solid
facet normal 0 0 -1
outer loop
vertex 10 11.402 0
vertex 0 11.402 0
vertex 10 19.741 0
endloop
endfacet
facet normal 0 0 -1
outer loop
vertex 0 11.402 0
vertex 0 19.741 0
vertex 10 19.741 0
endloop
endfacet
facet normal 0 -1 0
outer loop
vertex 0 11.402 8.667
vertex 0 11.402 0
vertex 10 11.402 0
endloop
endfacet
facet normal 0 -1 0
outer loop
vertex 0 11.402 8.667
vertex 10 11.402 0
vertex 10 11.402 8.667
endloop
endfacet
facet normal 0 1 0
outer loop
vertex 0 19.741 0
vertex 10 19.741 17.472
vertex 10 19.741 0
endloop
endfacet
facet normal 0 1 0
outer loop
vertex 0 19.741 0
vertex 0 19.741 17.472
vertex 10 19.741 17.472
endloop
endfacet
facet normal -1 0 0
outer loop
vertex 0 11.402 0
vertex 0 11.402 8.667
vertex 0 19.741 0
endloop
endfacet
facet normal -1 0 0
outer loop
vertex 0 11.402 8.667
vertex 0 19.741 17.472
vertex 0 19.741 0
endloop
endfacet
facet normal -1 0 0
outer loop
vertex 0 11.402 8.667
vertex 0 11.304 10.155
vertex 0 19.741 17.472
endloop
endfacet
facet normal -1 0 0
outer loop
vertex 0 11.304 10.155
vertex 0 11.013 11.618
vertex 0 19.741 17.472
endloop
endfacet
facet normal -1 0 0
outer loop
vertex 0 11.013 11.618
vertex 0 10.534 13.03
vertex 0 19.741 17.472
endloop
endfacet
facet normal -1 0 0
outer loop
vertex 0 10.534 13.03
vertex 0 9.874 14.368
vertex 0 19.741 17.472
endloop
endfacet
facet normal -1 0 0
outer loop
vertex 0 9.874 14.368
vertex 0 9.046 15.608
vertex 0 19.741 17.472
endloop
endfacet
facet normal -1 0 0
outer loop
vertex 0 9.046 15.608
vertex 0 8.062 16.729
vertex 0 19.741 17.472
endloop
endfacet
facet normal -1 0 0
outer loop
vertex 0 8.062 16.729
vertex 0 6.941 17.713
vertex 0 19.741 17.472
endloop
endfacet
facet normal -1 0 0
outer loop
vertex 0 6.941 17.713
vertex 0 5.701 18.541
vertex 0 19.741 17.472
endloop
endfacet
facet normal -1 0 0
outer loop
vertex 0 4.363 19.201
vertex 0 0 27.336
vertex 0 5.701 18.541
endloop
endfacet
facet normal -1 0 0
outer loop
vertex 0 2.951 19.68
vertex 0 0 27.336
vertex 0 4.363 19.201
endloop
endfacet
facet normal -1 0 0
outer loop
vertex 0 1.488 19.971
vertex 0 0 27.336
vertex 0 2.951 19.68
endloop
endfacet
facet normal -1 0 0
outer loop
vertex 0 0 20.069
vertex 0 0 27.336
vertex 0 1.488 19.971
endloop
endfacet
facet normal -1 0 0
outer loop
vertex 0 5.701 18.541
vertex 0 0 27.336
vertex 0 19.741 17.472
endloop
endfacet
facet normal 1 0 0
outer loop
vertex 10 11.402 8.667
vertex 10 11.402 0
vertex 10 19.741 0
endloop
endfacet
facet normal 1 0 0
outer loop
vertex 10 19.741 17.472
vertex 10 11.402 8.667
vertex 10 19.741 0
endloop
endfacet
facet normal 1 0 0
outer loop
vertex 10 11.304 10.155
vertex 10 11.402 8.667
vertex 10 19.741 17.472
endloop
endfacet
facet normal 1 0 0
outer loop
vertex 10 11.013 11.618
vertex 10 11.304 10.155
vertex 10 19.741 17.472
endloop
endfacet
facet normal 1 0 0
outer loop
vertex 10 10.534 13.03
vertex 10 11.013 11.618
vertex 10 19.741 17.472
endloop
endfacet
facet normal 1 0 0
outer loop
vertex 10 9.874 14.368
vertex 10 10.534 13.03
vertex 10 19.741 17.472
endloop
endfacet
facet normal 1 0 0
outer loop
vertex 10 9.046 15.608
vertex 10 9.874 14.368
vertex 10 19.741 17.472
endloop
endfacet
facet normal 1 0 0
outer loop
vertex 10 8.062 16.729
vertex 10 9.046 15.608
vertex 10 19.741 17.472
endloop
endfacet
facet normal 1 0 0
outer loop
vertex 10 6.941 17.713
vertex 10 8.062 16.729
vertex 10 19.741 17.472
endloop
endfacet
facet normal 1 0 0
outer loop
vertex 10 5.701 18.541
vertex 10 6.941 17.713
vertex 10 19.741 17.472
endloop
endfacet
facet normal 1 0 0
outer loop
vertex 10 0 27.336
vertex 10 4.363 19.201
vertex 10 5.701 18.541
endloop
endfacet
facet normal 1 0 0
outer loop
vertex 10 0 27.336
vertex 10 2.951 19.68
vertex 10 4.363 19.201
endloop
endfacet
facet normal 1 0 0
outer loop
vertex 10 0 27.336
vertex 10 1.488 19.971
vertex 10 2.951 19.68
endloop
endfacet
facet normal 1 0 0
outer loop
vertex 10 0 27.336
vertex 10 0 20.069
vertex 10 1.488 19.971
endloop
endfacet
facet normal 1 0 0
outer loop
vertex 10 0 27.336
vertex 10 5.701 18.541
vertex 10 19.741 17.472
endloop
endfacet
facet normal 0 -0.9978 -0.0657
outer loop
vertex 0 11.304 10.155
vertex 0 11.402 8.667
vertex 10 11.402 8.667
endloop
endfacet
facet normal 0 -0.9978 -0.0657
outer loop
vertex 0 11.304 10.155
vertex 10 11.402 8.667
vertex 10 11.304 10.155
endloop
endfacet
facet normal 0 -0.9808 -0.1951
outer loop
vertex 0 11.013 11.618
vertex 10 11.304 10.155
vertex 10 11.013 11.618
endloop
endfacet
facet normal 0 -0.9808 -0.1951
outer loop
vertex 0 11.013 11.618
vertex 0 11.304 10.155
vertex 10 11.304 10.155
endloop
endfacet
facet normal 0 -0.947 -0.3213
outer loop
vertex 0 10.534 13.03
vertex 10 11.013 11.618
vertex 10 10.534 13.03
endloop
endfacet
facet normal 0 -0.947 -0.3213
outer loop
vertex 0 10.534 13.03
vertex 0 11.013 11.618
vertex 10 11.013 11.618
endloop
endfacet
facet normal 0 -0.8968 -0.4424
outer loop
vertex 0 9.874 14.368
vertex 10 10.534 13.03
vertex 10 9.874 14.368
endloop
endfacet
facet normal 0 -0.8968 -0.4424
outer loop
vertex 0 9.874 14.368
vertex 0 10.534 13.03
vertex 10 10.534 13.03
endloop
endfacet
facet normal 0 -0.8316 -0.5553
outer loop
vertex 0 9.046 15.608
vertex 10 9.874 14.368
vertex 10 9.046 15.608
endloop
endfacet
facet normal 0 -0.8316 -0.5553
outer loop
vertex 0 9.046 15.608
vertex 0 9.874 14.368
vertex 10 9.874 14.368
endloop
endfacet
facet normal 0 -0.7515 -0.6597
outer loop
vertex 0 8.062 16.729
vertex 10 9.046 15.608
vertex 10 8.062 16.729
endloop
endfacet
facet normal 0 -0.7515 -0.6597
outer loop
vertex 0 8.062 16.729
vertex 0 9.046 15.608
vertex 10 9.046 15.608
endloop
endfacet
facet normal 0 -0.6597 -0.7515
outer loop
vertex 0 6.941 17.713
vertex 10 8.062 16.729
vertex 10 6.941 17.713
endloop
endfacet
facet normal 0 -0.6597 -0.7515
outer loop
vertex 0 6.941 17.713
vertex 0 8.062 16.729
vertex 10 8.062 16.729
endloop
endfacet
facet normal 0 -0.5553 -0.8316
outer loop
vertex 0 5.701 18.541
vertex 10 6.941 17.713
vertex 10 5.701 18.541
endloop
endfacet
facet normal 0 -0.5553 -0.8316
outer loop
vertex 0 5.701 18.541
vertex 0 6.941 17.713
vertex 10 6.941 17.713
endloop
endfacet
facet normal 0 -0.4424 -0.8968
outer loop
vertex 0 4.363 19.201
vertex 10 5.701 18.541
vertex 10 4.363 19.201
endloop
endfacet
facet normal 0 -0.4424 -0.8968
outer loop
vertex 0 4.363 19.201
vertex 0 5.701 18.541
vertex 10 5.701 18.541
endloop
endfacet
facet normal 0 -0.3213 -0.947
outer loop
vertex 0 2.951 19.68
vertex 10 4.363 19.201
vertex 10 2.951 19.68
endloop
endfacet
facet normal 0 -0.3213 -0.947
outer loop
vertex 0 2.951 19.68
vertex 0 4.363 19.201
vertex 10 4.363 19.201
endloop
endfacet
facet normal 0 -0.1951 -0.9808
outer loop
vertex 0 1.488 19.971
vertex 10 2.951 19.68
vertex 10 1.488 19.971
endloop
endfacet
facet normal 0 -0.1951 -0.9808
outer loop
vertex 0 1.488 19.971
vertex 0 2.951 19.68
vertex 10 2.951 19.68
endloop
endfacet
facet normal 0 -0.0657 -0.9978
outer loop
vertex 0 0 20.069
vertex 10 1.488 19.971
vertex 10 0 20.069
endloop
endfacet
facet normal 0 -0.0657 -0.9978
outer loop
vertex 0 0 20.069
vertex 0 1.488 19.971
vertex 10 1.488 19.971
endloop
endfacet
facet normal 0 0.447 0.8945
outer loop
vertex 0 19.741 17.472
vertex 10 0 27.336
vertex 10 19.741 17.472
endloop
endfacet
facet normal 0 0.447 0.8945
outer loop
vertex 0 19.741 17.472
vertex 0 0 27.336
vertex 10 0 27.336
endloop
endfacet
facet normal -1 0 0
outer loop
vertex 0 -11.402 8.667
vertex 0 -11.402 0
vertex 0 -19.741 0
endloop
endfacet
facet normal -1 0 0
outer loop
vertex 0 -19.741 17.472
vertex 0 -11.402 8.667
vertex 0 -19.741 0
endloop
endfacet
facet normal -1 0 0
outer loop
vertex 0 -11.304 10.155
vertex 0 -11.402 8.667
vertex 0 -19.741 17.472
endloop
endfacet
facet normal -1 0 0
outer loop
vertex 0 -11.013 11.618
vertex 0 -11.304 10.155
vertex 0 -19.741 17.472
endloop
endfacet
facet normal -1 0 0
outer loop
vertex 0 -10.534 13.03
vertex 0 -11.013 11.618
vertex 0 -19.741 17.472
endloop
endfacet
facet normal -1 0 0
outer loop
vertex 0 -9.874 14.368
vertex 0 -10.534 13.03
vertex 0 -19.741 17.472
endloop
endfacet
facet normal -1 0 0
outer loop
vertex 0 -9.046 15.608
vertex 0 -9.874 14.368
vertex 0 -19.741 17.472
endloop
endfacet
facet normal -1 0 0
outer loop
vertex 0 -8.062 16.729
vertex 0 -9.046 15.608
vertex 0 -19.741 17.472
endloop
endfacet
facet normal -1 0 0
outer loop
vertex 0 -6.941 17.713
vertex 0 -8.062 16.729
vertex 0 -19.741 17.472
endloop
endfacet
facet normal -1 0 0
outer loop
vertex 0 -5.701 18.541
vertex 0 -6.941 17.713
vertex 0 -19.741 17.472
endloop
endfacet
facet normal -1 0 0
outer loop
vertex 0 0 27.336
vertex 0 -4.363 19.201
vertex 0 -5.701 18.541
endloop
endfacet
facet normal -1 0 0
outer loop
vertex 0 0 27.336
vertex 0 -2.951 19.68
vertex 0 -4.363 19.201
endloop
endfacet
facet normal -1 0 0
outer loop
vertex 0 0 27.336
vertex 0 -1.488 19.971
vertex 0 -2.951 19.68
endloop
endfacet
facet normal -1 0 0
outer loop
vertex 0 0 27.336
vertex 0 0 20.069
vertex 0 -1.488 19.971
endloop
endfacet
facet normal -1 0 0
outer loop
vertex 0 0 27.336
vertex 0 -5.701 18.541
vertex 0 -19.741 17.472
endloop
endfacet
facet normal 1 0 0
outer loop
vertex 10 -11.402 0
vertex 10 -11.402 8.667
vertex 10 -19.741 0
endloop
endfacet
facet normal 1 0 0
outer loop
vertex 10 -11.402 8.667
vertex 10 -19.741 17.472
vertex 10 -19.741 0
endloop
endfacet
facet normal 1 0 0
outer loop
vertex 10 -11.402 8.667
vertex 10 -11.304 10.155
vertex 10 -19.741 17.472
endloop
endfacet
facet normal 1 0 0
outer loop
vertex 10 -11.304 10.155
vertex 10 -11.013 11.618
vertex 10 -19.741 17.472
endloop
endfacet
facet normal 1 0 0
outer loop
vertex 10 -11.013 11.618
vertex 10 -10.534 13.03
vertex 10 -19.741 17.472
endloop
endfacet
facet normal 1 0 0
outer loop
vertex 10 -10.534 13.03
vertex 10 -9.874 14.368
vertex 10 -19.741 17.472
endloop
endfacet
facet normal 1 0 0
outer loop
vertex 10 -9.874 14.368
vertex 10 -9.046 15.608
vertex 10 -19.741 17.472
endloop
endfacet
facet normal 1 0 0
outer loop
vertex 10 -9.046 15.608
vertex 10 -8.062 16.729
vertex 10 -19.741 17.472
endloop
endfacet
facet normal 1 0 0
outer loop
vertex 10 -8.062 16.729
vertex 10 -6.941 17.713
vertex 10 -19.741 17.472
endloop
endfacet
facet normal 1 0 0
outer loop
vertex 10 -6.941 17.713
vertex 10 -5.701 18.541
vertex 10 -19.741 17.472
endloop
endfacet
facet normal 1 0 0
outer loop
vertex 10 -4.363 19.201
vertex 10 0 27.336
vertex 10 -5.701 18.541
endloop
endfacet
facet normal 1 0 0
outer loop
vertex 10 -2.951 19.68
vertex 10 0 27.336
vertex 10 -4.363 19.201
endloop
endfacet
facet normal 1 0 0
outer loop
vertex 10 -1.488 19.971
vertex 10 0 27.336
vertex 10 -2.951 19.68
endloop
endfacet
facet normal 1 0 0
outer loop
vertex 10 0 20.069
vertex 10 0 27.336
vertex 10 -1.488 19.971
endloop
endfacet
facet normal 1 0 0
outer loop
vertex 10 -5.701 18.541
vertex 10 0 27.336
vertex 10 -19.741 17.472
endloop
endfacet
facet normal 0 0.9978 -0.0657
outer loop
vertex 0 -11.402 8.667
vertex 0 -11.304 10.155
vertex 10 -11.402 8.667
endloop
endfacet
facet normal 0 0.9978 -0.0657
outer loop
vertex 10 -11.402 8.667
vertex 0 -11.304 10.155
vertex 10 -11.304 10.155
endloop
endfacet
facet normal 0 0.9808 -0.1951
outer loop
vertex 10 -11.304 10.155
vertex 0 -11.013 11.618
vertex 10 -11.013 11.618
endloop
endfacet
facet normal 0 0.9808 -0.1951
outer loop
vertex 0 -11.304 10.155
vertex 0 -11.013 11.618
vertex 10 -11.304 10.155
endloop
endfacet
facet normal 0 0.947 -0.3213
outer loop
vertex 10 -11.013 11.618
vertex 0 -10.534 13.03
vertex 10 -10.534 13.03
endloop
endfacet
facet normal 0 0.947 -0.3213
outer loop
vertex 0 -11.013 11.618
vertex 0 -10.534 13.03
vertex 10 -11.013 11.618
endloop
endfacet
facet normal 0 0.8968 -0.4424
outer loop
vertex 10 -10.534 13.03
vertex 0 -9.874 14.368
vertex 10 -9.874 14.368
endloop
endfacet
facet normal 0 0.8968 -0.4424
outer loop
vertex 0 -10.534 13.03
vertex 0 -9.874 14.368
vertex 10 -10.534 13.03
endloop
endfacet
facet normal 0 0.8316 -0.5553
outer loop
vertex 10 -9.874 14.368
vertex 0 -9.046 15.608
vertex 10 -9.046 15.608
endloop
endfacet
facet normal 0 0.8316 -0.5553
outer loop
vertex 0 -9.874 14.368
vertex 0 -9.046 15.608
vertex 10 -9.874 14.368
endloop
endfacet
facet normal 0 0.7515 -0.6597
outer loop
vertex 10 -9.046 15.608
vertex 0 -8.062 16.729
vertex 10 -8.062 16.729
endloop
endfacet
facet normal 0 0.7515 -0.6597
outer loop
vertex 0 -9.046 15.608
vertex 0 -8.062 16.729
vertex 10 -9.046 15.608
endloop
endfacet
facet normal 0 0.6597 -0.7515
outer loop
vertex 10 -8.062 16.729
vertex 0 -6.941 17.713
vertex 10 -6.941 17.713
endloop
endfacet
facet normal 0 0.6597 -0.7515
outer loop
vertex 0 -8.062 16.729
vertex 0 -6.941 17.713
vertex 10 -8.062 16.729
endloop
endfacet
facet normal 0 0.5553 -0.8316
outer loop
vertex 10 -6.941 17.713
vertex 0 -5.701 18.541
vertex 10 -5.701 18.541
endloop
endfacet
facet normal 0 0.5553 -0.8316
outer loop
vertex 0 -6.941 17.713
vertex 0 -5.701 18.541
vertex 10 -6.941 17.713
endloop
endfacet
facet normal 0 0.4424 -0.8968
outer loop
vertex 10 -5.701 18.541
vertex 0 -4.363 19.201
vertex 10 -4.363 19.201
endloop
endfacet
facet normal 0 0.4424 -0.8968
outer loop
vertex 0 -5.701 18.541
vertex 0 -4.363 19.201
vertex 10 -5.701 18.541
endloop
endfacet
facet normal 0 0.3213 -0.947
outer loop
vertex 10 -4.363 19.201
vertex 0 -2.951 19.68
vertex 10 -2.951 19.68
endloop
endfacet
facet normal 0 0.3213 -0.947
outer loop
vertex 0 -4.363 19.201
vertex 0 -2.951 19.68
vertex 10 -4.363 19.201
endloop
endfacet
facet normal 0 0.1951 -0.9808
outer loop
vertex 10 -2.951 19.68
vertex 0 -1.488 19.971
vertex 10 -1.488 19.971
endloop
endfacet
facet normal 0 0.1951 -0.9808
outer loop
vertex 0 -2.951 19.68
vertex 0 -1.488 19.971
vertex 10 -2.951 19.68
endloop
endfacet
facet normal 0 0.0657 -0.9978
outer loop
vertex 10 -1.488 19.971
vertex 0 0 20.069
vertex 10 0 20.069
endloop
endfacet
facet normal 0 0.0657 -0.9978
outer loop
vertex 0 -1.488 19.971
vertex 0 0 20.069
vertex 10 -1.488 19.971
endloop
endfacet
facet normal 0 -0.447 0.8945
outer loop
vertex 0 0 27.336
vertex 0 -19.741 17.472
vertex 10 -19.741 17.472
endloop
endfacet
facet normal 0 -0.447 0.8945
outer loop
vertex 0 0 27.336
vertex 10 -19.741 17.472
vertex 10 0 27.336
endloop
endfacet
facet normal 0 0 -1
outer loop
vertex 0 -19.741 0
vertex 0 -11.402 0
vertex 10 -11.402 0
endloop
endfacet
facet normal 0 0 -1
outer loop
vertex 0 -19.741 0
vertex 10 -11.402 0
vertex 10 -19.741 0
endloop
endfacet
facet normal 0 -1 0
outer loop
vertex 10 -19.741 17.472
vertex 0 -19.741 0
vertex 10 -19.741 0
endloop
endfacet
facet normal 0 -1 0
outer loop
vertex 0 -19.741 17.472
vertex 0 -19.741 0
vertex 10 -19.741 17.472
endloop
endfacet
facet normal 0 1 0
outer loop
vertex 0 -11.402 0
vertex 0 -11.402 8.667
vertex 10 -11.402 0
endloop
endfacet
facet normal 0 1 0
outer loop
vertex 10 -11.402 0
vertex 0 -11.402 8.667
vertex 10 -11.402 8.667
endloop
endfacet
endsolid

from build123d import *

# Parameters (mm, degrees)
PAD_DEPTH = 10


with BuildPart() as part:
    # Sketch → Pad (new body)
    with BuildSketch(Plane.YZ):
        with BuildLine():
            Line((11.40163, 0), (19.740902, 0))
            Line((19.740902, 0), (19.740902, 17.47224))
            Line((19.740902, 17.47224), (0, 27.335573))
            Line((0, 27.335573), (0, 20.068824))
            ThreePointArc((11.40163, 8.667194), (8.06217, 16.729364), (0, 20.068824))
            Line((11.40163, 0), (11.40163, 8.667194))
        make_face()
    pad = extrude(amount=PAD_DEPTH)

    # Mirrored: Pad across Sketch V_Axis
    add(pad.mirror(Plane(origin=(0, 0, 0), x_dir=(1, 0, 0), z_dir=(0, 1, 0))))


solid = part.part
